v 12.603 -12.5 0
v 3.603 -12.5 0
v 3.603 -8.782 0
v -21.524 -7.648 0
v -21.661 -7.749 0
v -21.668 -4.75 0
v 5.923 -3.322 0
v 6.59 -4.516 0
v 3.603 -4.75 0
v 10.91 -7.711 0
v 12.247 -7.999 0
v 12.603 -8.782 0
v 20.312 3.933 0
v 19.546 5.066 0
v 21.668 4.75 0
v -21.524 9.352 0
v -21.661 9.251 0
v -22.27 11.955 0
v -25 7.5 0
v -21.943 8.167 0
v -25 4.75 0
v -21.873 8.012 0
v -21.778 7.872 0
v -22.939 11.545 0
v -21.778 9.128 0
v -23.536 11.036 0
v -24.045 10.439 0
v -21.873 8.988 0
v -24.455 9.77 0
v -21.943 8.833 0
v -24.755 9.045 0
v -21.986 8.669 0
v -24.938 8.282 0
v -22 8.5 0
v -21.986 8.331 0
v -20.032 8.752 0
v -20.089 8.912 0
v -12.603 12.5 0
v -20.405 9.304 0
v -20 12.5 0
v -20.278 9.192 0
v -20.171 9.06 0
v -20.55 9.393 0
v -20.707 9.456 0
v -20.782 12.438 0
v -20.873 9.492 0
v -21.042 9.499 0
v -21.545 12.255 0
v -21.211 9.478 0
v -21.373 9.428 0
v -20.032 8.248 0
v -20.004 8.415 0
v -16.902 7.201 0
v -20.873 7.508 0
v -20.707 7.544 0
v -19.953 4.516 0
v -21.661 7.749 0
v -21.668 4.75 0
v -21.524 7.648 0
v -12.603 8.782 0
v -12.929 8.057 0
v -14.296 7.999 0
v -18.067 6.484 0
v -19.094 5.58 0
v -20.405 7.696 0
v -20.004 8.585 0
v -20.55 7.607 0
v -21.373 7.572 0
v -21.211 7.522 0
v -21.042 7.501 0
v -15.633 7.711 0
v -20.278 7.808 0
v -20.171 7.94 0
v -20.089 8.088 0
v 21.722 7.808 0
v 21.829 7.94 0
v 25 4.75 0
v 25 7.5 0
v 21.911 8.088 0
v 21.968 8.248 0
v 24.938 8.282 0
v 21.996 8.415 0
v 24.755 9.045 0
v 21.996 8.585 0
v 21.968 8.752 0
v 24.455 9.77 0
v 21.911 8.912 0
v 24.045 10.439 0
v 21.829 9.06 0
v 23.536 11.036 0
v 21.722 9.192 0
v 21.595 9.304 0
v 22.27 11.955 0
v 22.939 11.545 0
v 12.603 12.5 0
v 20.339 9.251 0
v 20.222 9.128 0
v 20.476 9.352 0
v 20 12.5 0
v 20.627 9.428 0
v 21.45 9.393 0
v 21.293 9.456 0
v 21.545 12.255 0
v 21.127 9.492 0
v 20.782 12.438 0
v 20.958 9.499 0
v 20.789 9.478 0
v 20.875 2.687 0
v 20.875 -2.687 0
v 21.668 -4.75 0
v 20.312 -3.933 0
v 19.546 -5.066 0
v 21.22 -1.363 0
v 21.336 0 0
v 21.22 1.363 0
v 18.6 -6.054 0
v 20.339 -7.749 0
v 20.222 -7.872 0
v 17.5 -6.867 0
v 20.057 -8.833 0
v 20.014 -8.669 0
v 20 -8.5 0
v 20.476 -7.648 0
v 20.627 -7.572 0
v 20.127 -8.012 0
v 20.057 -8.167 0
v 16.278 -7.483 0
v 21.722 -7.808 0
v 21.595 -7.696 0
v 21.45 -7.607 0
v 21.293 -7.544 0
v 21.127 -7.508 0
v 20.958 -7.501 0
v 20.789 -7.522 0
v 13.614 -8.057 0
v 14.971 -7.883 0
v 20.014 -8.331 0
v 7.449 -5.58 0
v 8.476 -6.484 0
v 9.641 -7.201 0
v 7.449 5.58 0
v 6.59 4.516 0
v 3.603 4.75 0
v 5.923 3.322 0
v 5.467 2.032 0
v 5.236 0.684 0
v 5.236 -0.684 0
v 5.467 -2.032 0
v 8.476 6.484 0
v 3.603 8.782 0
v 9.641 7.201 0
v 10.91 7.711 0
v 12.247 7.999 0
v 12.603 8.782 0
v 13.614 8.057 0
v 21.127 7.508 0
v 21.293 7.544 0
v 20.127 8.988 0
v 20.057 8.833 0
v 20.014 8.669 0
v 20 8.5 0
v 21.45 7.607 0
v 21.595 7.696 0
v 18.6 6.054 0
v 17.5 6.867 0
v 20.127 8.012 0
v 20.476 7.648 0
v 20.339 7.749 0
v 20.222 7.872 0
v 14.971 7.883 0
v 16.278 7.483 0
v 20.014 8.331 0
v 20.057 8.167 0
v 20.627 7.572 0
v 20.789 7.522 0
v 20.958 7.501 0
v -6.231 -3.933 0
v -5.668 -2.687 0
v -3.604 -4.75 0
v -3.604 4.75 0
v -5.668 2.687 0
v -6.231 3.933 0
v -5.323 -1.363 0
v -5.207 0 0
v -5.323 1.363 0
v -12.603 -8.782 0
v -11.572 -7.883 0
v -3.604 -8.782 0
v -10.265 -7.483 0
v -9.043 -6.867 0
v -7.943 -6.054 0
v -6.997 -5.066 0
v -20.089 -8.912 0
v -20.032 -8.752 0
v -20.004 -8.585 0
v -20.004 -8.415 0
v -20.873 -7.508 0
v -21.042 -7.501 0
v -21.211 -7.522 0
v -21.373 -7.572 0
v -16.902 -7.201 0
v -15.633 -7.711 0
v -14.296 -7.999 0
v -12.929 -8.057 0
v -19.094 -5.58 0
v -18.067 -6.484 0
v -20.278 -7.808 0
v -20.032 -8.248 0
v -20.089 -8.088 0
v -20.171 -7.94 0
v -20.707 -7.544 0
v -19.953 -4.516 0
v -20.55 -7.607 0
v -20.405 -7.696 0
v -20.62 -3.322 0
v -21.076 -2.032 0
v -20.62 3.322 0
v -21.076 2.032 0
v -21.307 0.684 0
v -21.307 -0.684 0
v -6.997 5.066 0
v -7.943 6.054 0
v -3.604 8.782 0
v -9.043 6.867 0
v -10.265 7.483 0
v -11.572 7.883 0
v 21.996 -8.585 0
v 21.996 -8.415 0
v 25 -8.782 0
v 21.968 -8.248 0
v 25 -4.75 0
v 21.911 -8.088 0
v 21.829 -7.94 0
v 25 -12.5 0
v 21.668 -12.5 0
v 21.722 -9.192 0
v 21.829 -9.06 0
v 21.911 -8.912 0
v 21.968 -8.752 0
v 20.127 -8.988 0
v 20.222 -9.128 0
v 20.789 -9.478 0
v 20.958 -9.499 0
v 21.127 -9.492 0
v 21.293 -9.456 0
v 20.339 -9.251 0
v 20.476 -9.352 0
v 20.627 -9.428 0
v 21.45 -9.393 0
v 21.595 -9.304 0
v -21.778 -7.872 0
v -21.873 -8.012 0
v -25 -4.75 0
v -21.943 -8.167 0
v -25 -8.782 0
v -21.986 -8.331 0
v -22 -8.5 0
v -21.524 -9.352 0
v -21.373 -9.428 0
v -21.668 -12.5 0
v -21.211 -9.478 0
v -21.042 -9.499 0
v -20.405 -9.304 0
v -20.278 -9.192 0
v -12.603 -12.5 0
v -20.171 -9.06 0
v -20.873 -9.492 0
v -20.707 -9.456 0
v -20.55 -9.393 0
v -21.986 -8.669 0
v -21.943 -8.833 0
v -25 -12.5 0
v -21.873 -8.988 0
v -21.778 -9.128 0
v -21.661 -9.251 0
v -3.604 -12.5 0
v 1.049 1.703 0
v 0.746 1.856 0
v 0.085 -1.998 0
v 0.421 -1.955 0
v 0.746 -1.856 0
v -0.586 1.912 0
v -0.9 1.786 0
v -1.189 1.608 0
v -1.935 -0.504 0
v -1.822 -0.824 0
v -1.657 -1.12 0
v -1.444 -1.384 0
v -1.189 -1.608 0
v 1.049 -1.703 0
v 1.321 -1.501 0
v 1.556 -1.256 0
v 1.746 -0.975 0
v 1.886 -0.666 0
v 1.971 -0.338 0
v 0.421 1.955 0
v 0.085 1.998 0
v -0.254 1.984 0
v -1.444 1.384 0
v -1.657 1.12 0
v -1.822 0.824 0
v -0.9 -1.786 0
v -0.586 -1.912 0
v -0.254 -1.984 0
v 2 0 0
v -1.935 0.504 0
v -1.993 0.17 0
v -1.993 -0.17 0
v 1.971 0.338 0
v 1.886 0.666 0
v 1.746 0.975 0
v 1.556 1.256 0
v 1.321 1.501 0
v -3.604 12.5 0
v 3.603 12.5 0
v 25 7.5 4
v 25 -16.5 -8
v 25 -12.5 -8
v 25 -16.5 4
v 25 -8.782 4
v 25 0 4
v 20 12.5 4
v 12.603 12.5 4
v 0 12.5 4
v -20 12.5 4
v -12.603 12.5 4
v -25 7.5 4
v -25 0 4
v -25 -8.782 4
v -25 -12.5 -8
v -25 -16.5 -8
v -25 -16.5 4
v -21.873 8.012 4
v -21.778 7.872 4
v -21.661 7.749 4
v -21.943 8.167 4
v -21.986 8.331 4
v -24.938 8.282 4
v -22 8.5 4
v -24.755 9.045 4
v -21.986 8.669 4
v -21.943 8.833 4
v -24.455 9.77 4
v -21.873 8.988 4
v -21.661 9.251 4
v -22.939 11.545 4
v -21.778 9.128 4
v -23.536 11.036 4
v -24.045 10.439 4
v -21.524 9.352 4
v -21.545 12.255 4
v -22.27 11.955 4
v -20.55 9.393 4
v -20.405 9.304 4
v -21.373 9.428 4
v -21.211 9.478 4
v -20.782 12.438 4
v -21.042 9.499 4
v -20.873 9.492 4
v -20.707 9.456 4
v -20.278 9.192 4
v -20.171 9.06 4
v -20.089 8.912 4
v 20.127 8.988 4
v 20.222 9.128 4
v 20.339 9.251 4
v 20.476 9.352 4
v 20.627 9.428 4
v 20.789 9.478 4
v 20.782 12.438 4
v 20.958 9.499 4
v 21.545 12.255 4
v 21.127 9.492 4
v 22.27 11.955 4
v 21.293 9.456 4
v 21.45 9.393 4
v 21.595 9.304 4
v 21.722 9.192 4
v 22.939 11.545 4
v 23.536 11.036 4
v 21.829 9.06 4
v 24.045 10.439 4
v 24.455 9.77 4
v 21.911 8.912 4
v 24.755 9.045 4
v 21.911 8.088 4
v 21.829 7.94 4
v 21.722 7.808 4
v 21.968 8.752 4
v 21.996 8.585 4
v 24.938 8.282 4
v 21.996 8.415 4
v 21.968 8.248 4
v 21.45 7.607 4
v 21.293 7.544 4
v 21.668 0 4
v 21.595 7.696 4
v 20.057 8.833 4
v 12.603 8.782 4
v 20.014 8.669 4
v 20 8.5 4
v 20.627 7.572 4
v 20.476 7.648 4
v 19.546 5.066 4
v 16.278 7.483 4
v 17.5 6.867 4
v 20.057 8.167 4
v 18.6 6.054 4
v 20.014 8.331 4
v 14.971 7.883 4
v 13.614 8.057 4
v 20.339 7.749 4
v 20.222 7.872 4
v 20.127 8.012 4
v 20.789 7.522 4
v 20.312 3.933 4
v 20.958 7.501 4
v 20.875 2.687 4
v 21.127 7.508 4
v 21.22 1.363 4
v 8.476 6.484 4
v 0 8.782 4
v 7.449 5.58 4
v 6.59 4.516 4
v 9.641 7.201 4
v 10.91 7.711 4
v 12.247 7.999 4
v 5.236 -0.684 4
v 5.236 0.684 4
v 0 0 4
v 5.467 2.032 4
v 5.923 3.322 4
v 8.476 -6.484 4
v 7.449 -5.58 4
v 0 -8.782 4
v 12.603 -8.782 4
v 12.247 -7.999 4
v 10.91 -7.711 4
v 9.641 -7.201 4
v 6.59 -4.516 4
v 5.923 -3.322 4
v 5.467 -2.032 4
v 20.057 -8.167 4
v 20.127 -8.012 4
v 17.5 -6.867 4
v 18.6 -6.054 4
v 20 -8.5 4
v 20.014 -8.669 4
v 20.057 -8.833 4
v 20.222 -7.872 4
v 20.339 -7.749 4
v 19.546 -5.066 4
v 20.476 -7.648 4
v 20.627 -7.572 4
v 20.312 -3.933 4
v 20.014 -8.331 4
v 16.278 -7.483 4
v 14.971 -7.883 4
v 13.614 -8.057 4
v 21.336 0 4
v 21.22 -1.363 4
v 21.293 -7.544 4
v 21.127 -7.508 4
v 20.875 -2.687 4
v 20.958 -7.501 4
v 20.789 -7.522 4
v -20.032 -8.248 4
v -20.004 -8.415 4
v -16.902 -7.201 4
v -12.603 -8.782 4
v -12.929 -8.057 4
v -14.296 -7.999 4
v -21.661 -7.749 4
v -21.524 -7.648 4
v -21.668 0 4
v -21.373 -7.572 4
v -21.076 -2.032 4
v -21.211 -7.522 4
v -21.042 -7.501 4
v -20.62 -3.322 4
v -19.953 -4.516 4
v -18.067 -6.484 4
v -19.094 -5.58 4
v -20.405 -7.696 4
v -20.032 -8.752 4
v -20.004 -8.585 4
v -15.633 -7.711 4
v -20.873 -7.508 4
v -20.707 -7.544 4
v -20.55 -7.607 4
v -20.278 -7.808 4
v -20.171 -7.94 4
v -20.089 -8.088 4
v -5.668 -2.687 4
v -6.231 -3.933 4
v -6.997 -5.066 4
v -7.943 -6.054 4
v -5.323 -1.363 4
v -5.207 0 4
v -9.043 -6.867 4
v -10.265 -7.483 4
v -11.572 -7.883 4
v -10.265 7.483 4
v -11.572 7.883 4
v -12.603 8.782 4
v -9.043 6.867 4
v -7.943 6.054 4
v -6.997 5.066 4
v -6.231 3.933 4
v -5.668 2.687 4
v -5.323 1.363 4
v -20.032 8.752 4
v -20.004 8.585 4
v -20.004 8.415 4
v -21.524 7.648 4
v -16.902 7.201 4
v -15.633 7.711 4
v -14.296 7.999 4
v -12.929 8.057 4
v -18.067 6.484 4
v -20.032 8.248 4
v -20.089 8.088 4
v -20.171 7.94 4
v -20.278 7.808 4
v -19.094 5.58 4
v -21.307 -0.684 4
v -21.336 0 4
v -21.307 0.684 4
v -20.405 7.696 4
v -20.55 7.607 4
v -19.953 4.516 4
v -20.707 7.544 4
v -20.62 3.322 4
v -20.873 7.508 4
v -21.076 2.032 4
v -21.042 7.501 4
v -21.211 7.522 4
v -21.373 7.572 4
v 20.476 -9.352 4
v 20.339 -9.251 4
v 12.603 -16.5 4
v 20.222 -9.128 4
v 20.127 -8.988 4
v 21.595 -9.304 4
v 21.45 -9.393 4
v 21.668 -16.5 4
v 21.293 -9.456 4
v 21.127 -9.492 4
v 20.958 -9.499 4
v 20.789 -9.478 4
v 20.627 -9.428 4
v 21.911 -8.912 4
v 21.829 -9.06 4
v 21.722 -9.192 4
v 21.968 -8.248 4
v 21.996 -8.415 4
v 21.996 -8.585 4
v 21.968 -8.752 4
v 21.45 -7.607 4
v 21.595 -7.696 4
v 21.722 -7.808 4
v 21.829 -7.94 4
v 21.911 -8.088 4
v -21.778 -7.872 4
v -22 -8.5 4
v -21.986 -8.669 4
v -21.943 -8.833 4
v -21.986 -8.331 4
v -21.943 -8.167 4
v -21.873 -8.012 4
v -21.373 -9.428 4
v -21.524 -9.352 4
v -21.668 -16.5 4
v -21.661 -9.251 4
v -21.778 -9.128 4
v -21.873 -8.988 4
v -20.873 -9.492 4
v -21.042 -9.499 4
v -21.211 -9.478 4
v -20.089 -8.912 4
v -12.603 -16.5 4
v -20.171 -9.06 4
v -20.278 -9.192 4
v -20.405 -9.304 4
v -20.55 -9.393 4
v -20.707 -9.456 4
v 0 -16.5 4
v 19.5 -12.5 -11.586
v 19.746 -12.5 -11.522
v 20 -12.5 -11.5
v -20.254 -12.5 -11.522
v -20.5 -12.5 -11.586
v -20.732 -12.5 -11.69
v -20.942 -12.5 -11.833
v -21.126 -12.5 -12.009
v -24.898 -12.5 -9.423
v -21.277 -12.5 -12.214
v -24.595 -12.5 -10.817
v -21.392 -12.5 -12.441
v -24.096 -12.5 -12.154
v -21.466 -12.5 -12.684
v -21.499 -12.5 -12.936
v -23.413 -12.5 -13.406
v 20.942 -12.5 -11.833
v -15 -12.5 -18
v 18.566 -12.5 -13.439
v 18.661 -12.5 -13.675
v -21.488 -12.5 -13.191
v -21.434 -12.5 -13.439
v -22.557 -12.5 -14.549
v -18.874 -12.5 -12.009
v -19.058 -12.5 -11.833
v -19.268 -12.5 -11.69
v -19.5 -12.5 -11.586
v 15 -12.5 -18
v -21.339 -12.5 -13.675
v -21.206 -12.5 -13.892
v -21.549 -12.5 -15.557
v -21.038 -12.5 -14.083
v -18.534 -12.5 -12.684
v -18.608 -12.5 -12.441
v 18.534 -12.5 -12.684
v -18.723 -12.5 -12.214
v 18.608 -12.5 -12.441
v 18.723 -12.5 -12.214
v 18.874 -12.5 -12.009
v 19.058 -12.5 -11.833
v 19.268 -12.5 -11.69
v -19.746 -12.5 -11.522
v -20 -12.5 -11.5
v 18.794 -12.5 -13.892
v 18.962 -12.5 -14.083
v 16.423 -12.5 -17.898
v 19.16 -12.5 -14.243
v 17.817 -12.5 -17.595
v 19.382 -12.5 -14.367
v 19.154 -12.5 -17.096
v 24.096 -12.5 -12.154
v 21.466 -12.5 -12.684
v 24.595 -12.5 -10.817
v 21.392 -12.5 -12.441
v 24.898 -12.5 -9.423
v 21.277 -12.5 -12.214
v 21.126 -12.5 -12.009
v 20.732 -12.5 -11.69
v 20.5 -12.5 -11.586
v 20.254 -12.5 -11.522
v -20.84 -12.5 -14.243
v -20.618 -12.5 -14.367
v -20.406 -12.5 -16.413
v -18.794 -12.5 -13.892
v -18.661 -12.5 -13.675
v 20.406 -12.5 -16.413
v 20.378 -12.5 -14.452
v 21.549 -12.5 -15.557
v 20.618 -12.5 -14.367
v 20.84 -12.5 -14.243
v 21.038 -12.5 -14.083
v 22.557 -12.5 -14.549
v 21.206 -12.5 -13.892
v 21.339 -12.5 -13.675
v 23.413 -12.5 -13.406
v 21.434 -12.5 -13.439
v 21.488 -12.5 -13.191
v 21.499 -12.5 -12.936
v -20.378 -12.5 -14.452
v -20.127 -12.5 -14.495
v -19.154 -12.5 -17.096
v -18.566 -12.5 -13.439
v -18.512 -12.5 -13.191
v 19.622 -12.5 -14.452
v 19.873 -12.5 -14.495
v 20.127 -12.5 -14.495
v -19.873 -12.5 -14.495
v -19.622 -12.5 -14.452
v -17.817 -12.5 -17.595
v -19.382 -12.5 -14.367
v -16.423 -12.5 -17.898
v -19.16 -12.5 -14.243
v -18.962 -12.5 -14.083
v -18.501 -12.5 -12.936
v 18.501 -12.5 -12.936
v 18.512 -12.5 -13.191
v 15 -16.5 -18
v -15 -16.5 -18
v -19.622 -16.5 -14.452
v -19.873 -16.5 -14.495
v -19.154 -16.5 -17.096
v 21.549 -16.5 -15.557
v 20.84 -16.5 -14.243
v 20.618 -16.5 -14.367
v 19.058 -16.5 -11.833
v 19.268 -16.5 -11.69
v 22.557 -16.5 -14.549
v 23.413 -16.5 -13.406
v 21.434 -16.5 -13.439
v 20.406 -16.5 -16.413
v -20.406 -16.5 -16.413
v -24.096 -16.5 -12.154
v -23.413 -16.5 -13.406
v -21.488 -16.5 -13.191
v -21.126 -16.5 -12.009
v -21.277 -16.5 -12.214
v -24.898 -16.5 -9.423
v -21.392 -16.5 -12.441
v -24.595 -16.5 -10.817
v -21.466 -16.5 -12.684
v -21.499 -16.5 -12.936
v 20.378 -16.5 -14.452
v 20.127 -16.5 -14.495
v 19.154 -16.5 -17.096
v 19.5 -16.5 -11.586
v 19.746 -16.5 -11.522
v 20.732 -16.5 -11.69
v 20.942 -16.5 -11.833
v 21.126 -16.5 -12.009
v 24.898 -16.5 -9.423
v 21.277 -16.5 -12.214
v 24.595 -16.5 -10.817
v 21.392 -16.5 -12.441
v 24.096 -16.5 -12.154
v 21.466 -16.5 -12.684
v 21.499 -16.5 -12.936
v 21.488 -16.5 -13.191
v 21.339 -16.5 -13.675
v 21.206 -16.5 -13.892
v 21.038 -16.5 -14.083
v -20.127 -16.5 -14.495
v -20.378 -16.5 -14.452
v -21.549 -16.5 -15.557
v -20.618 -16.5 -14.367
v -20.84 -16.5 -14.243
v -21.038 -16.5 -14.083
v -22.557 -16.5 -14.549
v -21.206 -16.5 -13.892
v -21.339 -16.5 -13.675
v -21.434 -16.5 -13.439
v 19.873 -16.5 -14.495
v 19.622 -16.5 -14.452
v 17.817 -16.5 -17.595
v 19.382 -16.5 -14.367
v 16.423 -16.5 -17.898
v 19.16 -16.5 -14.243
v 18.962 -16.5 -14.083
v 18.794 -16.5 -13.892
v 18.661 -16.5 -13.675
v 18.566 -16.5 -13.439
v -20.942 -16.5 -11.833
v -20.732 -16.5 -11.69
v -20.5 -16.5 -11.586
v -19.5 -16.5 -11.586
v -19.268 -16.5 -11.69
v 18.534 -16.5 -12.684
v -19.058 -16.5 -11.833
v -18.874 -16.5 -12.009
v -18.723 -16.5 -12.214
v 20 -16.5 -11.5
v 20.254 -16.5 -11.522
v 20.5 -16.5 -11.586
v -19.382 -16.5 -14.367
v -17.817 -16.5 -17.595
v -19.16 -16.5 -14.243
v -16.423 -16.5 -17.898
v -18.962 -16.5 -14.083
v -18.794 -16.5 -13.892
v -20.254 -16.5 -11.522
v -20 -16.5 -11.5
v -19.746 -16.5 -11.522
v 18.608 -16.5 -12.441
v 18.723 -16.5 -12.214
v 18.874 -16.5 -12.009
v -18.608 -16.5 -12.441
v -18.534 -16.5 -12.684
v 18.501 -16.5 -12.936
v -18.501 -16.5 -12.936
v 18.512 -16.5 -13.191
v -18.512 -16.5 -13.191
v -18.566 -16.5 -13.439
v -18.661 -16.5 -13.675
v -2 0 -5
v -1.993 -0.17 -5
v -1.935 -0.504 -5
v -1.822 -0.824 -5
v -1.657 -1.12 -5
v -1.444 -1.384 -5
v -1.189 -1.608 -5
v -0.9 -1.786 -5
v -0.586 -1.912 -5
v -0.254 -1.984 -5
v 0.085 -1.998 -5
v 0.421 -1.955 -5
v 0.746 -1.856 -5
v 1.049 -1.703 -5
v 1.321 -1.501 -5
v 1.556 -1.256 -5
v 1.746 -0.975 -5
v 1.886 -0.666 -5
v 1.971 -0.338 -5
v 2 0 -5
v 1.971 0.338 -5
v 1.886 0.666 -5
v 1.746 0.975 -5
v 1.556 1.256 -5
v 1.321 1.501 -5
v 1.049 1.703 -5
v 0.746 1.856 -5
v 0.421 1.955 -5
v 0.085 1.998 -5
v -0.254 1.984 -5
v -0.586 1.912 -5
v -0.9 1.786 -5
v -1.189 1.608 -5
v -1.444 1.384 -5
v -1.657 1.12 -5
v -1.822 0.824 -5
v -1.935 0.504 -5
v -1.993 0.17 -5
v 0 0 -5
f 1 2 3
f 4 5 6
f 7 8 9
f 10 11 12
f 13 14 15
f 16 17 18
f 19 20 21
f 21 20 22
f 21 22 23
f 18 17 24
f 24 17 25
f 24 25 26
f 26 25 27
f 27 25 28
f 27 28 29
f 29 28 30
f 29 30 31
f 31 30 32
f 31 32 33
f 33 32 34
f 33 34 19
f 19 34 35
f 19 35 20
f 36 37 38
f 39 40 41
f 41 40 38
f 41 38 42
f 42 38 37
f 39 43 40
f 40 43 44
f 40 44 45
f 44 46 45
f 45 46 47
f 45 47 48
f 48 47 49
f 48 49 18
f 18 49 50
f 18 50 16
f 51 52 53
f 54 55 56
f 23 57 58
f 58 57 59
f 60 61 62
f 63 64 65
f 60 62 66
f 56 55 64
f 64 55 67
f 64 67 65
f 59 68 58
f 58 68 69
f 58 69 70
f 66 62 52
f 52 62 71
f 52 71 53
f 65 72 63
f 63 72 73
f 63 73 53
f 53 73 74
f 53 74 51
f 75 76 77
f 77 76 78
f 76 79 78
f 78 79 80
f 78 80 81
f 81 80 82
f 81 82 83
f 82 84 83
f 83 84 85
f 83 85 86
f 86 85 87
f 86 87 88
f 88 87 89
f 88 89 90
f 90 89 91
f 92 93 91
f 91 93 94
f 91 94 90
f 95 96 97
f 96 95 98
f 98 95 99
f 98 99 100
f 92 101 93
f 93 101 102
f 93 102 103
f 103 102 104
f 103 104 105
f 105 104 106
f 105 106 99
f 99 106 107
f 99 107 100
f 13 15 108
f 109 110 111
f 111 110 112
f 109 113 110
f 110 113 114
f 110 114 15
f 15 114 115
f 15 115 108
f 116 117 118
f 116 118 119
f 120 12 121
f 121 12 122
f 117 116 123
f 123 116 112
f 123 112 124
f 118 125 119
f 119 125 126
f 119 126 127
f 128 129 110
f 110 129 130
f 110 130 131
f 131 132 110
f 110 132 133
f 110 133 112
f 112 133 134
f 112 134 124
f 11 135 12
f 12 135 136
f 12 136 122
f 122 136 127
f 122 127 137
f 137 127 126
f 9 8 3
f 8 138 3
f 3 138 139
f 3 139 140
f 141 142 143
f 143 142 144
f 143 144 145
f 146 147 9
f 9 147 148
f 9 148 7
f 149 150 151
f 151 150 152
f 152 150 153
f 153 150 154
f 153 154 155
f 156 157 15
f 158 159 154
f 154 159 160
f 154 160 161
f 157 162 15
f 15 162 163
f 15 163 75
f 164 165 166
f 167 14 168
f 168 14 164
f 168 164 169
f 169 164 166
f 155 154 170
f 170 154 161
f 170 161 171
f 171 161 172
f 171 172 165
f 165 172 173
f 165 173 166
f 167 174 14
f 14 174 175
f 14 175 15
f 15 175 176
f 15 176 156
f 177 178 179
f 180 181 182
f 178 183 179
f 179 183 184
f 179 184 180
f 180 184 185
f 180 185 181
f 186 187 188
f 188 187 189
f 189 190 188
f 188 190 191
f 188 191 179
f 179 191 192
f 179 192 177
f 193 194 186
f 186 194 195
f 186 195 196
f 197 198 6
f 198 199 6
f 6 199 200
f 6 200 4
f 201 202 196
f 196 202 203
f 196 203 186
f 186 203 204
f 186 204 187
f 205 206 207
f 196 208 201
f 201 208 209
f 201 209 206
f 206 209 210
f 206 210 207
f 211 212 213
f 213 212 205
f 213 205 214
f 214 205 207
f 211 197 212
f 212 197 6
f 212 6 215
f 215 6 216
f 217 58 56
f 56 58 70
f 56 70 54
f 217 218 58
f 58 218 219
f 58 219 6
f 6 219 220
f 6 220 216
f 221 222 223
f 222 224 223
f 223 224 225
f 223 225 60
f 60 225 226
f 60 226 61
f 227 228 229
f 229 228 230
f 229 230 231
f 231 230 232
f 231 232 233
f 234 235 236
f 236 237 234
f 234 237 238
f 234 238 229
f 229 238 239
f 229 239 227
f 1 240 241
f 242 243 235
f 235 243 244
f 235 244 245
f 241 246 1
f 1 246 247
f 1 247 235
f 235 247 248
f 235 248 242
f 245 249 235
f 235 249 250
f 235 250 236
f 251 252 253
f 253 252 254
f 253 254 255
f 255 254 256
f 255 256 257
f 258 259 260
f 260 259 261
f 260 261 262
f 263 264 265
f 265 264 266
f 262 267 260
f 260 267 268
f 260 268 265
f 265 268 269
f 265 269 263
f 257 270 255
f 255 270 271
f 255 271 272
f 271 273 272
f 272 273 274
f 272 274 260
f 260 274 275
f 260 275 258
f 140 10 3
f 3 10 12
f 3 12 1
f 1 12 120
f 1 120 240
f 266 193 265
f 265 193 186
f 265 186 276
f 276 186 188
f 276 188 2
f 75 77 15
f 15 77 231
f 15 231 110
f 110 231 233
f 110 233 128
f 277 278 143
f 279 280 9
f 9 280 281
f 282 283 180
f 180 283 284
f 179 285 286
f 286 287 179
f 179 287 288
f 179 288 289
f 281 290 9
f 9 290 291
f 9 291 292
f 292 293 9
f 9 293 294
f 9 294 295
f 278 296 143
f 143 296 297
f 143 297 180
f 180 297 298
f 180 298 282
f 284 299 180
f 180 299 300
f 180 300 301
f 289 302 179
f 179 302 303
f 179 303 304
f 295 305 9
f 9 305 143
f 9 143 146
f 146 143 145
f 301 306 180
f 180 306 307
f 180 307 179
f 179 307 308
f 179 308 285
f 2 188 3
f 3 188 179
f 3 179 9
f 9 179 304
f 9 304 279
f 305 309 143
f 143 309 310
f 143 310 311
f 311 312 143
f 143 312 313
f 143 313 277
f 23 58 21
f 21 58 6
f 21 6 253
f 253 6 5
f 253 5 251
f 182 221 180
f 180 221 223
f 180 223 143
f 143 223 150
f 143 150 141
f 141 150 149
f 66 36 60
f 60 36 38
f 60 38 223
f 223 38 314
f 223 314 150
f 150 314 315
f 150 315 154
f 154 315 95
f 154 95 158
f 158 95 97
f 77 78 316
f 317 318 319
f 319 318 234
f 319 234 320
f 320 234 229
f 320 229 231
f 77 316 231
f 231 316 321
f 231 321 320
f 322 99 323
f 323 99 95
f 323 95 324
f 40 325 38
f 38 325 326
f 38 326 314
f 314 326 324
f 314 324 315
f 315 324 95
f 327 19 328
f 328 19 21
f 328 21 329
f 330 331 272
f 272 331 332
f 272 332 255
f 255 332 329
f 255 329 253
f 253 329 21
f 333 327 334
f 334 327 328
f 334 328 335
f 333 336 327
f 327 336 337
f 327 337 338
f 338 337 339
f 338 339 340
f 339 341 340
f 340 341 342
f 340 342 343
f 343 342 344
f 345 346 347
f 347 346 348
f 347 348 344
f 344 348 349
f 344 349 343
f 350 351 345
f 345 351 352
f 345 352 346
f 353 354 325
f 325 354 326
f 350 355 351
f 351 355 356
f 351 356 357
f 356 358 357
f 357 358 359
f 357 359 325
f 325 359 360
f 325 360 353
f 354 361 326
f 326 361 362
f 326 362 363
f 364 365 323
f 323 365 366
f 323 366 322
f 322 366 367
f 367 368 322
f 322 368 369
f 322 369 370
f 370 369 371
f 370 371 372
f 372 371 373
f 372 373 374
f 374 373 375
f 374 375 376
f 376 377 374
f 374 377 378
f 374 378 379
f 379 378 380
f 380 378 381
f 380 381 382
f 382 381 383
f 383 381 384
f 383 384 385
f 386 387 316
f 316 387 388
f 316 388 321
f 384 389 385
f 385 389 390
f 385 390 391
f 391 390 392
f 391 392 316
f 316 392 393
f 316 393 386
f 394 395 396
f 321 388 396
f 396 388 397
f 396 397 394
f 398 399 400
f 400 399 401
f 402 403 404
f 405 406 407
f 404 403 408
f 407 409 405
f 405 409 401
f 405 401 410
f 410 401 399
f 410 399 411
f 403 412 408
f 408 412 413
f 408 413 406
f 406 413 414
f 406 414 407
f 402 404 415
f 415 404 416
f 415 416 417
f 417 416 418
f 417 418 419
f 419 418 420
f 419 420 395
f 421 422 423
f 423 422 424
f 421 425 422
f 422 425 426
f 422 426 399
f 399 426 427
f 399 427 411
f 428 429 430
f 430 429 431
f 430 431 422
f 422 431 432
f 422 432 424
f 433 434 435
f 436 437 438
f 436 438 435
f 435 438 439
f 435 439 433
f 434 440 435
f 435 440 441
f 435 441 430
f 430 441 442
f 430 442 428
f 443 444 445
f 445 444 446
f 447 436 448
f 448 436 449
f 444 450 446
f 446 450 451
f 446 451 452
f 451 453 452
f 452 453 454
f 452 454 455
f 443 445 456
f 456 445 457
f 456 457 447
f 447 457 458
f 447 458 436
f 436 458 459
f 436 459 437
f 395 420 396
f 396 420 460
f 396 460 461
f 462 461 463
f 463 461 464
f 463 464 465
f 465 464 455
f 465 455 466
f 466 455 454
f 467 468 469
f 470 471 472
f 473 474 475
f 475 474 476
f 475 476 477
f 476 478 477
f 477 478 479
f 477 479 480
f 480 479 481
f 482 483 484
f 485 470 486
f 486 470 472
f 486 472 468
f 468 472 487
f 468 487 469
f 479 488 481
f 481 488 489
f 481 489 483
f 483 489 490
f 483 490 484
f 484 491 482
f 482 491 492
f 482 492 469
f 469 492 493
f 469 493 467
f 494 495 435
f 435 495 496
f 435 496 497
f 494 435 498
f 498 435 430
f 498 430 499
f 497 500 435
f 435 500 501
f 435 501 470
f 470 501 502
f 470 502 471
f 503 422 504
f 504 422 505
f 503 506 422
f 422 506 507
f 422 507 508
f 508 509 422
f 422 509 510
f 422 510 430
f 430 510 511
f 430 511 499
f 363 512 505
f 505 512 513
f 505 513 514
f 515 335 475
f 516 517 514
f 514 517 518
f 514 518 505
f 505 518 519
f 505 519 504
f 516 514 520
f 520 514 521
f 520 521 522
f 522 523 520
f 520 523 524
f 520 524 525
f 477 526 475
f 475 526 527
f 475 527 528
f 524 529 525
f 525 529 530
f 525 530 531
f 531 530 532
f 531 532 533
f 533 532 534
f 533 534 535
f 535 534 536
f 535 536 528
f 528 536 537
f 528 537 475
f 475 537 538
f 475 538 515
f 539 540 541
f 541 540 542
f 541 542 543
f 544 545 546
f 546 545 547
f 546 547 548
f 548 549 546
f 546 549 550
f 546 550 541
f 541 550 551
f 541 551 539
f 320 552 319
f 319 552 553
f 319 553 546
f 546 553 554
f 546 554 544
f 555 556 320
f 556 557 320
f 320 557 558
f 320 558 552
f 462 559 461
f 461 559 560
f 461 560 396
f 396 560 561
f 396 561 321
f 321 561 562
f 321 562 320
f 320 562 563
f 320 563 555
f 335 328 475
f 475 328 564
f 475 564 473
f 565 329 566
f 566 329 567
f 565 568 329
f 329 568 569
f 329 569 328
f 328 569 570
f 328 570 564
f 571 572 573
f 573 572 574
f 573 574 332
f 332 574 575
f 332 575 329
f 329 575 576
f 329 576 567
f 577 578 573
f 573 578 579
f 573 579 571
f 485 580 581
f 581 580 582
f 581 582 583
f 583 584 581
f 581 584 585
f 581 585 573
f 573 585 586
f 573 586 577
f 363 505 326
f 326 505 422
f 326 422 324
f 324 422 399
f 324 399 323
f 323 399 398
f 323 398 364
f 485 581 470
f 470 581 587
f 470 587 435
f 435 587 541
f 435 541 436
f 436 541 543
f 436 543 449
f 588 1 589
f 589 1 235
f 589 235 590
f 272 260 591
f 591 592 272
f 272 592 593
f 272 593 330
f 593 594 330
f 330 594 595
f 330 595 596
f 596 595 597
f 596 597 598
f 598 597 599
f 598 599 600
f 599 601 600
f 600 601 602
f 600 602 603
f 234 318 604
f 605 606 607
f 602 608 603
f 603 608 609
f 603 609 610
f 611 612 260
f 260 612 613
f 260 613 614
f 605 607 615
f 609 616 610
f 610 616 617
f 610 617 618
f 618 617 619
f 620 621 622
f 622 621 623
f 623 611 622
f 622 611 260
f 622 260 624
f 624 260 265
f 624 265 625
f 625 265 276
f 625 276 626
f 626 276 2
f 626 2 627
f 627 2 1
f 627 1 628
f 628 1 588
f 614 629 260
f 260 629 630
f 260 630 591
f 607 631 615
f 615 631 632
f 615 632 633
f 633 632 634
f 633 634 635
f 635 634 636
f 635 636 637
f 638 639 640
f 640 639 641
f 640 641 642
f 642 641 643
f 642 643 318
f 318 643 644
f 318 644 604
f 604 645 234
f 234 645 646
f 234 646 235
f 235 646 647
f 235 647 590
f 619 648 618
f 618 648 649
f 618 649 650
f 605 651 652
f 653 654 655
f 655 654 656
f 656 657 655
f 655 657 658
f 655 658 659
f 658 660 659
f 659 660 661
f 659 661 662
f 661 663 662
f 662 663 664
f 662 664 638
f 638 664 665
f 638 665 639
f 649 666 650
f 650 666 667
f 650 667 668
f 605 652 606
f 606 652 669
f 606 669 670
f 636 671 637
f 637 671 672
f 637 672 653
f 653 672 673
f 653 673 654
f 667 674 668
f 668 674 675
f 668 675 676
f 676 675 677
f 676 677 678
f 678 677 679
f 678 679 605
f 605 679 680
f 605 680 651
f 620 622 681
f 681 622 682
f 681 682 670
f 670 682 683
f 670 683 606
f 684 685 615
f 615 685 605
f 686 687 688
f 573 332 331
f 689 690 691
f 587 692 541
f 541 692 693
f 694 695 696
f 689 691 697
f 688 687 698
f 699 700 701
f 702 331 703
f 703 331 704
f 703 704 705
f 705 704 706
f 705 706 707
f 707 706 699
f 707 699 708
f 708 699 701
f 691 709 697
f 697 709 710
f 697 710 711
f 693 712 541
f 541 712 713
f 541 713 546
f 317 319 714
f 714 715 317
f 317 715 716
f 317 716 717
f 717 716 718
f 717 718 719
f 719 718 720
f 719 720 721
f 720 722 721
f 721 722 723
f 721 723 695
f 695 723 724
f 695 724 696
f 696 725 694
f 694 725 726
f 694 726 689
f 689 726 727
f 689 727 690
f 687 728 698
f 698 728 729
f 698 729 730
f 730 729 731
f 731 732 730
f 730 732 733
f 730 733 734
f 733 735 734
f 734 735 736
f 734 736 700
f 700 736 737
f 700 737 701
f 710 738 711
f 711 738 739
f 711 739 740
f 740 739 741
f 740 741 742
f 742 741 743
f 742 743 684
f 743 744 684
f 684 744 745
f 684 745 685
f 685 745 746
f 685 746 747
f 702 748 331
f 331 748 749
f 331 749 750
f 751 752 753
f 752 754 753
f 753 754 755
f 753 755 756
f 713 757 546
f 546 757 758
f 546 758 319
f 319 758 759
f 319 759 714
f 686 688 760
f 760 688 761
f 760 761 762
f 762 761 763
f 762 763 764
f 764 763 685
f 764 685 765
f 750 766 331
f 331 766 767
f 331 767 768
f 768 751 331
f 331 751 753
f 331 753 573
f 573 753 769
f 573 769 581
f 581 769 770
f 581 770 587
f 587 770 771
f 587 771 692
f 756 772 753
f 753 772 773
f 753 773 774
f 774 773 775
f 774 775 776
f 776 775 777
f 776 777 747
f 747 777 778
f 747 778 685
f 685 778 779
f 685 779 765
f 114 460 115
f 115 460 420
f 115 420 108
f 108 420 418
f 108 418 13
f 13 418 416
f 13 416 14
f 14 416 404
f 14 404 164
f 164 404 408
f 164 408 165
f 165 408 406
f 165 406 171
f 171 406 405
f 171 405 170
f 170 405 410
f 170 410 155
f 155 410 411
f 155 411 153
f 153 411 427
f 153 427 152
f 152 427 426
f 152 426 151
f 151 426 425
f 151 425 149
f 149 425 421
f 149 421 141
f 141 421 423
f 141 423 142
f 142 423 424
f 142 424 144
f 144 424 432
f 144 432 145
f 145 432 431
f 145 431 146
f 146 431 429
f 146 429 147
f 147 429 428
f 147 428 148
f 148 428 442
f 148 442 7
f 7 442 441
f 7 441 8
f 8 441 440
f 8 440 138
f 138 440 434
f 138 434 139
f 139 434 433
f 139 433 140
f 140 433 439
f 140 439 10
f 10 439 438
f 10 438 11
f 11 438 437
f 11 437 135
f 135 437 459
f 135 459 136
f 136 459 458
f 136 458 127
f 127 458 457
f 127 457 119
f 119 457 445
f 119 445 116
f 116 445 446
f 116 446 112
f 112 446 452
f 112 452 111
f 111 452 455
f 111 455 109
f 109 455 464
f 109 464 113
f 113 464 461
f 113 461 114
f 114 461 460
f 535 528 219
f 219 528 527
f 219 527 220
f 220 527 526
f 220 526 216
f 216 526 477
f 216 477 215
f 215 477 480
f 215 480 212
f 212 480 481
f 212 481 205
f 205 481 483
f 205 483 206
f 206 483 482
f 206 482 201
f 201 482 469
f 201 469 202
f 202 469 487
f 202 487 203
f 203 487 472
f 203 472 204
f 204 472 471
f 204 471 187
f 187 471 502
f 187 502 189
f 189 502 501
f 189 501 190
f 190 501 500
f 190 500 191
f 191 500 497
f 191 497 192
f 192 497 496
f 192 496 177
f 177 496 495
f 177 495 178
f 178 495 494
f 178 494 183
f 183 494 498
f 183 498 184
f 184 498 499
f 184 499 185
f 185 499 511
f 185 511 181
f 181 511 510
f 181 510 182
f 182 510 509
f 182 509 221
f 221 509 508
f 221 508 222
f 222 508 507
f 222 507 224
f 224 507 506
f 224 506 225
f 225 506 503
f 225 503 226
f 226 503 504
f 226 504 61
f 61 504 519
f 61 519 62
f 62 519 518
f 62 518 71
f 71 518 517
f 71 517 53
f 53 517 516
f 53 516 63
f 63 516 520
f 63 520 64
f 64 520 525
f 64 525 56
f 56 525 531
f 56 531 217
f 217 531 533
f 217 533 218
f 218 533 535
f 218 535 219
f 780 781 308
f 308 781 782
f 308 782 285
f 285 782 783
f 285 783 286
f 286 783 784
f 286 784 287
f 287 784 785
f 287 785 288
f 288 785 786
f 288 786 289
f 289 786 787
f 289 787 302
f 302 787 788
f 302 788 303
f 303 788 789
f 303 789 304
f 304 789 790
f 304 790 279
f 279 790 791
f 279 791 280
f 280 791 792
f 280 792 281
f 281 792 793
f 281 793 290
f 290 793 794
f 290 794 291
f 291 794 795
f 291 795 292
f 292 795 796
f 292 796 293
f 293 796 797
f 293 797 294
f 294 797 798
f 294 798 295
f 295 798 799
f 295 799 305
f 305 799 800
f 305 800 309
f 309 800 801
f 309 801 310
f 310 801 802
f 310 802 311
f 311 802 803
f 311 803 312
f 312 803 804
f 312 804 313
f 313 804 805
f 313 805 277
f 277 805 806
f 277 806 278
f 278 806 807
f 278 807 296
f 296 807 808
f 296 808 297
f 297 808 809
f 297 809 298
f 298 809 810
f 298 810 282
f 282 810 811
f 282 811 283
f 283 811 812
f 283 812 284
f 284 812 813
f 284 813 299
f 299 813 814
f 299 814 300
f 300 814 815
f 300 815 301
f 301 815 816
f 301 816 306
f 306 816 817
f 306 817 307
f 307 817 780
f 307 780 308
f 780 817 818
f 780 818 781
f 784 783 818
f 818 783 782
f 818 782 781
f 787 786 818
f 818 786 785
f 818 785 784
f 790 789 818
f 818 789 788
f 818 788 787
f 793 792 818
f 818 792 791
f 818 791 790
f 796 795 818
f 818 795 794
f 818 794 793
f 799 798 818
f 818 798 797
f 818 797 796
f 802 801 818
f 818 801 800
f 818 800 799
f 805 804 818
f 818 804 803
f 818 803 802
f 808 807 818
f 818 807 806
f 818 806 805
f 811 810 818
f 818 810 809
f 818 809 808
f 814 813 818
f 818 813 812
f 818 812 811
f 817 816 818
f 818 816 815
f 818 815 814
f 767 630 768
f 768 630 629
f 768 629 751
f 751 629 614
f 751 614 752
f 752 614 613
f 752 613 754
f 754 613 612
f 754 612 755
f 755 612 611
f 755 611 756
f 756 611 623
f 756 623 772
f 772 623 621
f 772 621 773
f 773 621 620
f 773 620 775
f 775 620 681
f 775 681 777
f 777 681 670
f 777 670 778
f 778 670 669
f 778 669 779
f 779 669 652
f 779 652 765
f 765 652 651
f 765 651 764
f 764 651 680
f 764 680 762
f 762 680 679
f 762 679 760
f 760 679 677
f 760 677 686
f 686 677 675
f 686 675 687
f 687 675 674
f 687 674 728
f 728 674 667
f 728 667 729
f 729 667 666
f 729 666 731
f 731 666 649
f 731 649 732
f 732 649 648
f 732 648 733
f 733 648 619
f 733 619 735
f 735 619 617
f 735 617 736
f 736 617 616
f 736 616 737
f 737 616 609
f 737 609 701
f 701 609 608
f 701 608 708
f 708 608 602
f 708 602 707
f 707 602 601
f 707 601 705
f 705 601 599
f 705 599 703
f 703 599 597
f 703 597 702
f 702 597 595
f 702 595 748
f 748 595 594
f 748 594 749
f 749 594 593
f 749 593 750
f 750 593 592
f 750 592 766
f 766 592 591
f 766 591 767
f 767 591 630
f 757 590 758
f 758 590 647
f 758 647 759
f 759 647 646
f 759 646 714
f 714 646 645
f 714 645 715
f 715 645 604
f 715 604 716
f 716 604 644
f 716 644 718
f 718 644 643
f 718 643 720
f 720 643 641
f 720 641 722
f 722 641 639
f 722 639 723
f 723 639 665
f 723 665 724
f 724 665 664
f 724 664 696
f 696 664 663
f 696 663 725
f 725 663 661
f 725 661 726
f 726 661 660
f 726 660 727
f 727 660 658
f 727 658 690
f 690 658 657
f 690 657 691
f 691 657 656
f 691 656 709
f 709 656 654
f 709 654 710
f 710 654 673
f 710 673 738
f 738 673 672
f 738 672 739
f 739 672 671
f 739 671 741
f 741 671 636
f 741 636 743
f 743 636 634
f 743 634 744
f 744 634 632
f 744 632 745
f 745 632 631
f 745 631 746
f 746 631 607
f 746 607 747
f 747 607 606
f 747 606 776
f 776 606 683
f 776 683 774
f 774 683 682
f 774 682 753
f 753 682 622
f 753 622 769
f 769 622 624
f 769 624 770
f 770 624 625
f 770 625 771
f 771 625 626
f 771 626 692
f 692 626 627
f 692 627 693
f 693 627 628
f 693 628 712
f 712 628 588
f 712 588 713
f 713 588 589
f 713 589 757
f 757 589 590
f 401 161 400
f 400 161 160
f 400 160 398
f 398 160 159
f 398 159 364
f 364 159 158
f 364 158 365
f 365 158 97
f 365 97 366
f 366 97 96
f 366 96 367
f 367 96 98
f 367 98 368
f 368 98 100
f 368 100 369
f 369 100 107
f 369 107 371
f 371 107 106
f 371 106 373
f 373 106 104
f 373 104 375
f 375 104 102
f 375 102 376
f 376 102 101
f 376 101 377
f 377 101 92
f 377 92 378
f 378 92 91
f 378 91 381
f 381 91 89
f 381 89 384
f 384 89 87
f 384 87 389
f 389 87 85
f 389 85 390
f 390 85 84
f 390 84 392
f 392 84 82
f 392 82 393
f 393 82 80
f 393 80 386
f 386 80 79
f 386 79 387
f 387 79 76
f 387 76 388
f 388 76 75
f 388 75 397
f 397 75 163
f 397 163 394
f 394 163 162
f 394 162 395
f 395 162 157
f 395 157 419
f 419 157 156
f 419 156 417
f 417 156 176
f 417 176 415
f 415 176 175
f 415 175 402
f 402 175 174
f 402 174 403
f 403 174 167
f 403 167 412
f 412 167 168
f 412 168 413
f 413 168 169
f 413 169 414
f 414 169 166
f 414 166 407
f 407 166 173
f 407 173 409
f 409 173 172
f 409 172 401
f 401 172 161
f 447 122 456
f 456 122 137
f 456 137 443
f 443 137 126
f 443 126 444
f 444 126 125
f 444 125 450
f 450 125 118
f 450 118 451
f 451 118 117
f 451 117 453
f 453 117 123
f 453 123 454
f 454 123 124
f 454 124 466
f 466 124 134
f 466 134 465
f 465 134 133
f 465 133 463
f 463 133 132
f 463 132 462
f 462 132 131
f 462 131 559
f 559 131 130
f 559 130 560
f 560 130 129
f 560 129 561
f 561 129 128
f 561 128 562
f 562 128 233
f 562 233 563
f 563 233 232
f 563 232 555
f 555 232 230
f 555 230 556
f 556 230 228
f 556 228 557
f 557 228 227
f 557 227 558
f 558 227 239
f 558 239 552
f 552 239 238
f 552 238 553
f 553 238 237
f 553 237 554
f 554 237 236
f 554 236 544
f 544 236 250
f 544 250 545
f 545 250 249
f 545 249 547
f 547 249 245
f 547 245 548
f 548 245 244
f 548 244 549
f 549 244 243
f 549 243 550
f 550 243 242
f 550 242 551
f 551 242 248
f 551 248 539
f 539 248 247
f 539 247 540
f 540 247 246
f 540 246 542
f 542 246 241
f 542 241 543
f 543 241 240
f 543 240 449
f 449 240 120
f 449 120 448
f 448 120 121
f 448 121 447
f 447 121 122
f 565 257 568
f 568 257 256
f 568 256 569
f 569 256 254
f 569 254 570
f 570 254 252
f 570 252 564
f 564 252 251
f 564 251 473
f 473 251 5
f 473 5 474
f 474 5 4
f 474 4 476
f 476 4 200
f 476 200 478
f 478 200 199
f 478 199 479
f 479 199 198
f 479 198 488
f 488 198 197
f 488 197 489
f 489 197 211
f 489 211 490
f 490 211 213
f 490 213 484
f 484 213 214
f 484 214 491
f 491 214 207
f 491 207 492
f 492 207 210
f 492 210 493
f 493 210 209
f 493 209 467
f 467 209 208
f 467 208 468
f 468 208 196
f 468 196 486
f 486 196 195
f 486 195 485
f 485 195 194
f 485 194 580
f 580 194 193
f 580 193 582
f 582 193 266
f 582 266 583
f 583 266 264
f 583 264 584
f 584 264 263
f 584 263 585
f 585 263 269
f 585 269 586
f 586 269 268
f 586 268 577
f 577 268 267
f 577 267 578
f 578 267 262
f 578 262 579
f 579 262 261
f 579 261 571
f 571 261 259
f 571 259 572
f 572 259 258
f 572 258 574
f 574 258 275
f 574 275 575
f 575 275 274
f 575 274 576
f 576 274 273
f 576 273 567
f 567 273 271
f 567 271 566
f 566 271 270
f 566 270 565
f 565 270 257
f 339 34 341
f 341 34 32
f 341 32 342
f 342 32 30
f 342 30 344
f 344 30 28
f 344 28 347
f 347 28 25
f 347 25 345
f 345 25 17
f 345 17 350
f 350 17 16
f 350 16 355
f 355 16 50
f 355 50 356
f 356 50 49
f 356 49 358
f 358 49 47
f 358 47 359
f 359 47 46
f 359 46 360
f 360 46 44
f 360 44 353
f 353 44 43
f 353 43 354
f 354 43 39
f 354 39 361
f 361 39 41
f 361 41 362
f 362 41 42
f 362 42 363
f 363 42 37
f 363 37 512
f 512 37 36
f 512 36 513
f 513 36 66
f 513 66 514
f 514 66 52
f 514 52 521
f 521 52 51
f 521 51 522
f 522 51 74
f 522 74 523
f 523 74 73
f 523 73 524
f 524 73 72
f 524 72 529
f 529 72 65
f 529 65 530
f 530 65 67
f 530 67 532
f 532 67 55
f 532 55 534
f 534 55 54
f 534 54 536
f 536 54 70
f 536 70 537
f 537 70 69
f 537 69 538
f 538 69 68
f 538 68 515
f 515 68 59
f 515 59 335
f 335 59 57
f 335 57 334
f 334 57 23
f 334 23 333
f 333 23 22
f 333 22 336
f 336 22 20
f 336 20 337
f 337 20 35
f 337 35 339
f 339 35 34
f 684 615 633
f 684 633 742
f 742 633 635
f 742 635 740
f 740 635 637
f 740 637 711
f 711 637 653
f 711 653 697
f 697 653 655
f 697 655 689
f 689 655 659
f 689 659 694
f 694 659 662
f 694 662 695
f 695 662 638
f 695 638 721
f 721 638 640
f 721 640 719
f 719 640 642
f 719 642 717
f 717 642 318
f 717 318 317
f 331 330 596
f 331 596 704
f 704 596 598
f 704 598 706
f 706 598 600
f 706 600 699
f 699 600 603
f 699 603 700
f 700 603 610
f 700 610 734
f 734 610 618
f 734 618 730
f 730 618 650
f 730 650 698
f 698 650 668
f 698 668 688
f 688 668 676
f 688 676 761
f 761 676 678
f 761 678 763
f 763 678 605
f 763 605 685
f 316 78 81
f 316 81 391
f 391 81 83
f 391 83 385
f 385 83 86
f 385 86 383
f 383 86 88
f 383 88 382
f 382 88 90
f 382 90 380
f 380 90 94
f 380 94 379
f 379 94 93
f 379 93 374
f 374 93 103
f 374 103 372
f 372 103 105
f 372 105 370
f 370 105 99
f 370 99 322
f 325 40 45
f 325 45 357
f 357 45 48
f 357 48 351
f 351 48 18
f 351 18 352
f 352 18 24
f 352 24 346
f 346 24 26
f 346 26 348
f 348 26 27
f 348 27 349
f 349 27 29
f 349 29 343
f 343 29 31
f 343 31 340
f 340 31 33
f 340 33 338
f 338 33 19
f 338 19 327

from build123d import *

# Parameters (mm, degrees)
SKETCH1_W             = 50
SKETCH1_H             = 25
BOSS_EXTRUDE1_DEPTH   = 4
SKETCH2_W             = 50
SKETCH2_H             = 22
BOSS_EXTRUDE2_DEPTH   = 4
SKETCH3_R             = 8.0645
CUT_EXTRUDE1_DEPTH    = 23
SKETCH4_R             = 2
BOSS_EXTRUDE4_DEPTH   = 5
F_3_0MM_DOWEL_HOLE1_D = 3
F_2_0MM_DOWEL_HOLE1_D = 2
MIRROR4_COPY_1_D      = 2
FILLET1_R             = 10
FILLET2_R             = 5


with BuildPart() as part:
    # Sketch1 → Boss-Extrude1 (new body)
    with BuildSketch(Plane.XY):
        Rectangle(SKETCH1_W, SKETCH1_H)
    extrude(amount=BOSS_EXTRUDE1_DEPTH)

    # Sketch2 → Boss-Extrude2 (add)
    with BuildSketch(Plane.XZ.offset(12.5)):
        with Locations((0, -7)):
            Rectangle(SKETCH2_W, SKETCH2_H)
    extrude(amount=BOSS_EXTRUDE2_DEPTH)

    # Sketch3 → Cut-Extrude1 (cut, through all)
    with BuildSketch(Plane.XY.offset(4)):
        with Locations((13.2715, 0)):
            Circle(SKETCH3_R)
    cut_extrude1 = extrude(amount=-CUT_EXTRUDE1_DEPTH, mode=Mode.SUBTRACT)

    # Mirror1: Cut-Extrude1 across plane
    add(cut_extrude1.mirror(Plane(origin=(0, 0, 0), x_dir=(0, 0, 1), z_dir=(1, 0, 0))), mode=Mode.SUBTRACT)

    # Sketch4 → Boss-Extrude4 (add)
    with BuildSketch(Plane(origin=(0, 0, 0), x_dir=(-1, 0, 0), z_dir=(0, 0, -1))):
        Circle(SKETCH4_R)
    extrude(amount=BOSS_EXTRUDE4_DEPTH)

    # Ø3.0mm Dowel Hole1 (through all)
    with Locations(Plane(origin=(0, -12.5, 0), x_dir=(1, 0, 0), z_dir=(0, 1, 0))):
        with Locations((-20, 13)):
            f_3_0mm_dowel_hole1 = Hole(F_3_0MM_DOWEL_HOLE1_D / 2)

    # Mirror2: Ø3.0mm Dowel Hole1 across plane
    add(f_3_0mm_dowel_hole1.mirror(Plane(origin=(0, 0, 0), x_dir=(0, 0, 1), z_dir=(1, 0, 0))), mode=Mode.SUBTRACT)

    # Ø2.0mm Dowel Hole1 (through all)
    with Locations(Plane(origin=(0, 0, 0), x_dir=(-1, 0, 0), z_dir=(0, 0, -1))):
        with Locations((-21, 8.5)):
            f_2_0mm_dowel_hole1 = Hole(F_2_0MM_DOWEL_HOLE1_D / 2)

    # Mirror3: Ø2.0mm Dowel Hole1 across plane
    add(f_2_0mm_dowel_hole1.mirror(Plane.ZX), mode=Mode.SUBTRACT)

    # Mirror4: Ø2.0mm Dowel Hole1 across plane
    add(f_2_0mm_dowel_hole1.mirror(Plane(origin=(0, 0, 0), x_dir=(0, 0, 1), z_dir=(1, 0, 0))), mode=Mode.SUBTRACT)

    # Mirror4 copy 1 (through all)
    with Locations(Plane(origin=(0, 0, 0), x_dir=(1, 0, 0), z_dir=(0, 0, -1))):
        with Locations((-21, 8.5)):
            Hole(MIRROR4_COPY_1_D / 2)

    # Fillet1
    fillet1_edges = [part.edges().sort_by_distance(p)[0] for p in [
        (-25, -14.5, -18),
        (25, -14.5, -18),
    ]]
    fillet(fillet1_edges, radius=FILLET1_R)

    # Fillet2
    fillet2_edges = [part.edges().sort_by_distance(p)[0] for p in [
        (-25, 12.5, 2),
        (25, 12.5, 2),
    ]]
    fillet(fillet2_edges, radius=FILLET2_R)


solid = part.part
